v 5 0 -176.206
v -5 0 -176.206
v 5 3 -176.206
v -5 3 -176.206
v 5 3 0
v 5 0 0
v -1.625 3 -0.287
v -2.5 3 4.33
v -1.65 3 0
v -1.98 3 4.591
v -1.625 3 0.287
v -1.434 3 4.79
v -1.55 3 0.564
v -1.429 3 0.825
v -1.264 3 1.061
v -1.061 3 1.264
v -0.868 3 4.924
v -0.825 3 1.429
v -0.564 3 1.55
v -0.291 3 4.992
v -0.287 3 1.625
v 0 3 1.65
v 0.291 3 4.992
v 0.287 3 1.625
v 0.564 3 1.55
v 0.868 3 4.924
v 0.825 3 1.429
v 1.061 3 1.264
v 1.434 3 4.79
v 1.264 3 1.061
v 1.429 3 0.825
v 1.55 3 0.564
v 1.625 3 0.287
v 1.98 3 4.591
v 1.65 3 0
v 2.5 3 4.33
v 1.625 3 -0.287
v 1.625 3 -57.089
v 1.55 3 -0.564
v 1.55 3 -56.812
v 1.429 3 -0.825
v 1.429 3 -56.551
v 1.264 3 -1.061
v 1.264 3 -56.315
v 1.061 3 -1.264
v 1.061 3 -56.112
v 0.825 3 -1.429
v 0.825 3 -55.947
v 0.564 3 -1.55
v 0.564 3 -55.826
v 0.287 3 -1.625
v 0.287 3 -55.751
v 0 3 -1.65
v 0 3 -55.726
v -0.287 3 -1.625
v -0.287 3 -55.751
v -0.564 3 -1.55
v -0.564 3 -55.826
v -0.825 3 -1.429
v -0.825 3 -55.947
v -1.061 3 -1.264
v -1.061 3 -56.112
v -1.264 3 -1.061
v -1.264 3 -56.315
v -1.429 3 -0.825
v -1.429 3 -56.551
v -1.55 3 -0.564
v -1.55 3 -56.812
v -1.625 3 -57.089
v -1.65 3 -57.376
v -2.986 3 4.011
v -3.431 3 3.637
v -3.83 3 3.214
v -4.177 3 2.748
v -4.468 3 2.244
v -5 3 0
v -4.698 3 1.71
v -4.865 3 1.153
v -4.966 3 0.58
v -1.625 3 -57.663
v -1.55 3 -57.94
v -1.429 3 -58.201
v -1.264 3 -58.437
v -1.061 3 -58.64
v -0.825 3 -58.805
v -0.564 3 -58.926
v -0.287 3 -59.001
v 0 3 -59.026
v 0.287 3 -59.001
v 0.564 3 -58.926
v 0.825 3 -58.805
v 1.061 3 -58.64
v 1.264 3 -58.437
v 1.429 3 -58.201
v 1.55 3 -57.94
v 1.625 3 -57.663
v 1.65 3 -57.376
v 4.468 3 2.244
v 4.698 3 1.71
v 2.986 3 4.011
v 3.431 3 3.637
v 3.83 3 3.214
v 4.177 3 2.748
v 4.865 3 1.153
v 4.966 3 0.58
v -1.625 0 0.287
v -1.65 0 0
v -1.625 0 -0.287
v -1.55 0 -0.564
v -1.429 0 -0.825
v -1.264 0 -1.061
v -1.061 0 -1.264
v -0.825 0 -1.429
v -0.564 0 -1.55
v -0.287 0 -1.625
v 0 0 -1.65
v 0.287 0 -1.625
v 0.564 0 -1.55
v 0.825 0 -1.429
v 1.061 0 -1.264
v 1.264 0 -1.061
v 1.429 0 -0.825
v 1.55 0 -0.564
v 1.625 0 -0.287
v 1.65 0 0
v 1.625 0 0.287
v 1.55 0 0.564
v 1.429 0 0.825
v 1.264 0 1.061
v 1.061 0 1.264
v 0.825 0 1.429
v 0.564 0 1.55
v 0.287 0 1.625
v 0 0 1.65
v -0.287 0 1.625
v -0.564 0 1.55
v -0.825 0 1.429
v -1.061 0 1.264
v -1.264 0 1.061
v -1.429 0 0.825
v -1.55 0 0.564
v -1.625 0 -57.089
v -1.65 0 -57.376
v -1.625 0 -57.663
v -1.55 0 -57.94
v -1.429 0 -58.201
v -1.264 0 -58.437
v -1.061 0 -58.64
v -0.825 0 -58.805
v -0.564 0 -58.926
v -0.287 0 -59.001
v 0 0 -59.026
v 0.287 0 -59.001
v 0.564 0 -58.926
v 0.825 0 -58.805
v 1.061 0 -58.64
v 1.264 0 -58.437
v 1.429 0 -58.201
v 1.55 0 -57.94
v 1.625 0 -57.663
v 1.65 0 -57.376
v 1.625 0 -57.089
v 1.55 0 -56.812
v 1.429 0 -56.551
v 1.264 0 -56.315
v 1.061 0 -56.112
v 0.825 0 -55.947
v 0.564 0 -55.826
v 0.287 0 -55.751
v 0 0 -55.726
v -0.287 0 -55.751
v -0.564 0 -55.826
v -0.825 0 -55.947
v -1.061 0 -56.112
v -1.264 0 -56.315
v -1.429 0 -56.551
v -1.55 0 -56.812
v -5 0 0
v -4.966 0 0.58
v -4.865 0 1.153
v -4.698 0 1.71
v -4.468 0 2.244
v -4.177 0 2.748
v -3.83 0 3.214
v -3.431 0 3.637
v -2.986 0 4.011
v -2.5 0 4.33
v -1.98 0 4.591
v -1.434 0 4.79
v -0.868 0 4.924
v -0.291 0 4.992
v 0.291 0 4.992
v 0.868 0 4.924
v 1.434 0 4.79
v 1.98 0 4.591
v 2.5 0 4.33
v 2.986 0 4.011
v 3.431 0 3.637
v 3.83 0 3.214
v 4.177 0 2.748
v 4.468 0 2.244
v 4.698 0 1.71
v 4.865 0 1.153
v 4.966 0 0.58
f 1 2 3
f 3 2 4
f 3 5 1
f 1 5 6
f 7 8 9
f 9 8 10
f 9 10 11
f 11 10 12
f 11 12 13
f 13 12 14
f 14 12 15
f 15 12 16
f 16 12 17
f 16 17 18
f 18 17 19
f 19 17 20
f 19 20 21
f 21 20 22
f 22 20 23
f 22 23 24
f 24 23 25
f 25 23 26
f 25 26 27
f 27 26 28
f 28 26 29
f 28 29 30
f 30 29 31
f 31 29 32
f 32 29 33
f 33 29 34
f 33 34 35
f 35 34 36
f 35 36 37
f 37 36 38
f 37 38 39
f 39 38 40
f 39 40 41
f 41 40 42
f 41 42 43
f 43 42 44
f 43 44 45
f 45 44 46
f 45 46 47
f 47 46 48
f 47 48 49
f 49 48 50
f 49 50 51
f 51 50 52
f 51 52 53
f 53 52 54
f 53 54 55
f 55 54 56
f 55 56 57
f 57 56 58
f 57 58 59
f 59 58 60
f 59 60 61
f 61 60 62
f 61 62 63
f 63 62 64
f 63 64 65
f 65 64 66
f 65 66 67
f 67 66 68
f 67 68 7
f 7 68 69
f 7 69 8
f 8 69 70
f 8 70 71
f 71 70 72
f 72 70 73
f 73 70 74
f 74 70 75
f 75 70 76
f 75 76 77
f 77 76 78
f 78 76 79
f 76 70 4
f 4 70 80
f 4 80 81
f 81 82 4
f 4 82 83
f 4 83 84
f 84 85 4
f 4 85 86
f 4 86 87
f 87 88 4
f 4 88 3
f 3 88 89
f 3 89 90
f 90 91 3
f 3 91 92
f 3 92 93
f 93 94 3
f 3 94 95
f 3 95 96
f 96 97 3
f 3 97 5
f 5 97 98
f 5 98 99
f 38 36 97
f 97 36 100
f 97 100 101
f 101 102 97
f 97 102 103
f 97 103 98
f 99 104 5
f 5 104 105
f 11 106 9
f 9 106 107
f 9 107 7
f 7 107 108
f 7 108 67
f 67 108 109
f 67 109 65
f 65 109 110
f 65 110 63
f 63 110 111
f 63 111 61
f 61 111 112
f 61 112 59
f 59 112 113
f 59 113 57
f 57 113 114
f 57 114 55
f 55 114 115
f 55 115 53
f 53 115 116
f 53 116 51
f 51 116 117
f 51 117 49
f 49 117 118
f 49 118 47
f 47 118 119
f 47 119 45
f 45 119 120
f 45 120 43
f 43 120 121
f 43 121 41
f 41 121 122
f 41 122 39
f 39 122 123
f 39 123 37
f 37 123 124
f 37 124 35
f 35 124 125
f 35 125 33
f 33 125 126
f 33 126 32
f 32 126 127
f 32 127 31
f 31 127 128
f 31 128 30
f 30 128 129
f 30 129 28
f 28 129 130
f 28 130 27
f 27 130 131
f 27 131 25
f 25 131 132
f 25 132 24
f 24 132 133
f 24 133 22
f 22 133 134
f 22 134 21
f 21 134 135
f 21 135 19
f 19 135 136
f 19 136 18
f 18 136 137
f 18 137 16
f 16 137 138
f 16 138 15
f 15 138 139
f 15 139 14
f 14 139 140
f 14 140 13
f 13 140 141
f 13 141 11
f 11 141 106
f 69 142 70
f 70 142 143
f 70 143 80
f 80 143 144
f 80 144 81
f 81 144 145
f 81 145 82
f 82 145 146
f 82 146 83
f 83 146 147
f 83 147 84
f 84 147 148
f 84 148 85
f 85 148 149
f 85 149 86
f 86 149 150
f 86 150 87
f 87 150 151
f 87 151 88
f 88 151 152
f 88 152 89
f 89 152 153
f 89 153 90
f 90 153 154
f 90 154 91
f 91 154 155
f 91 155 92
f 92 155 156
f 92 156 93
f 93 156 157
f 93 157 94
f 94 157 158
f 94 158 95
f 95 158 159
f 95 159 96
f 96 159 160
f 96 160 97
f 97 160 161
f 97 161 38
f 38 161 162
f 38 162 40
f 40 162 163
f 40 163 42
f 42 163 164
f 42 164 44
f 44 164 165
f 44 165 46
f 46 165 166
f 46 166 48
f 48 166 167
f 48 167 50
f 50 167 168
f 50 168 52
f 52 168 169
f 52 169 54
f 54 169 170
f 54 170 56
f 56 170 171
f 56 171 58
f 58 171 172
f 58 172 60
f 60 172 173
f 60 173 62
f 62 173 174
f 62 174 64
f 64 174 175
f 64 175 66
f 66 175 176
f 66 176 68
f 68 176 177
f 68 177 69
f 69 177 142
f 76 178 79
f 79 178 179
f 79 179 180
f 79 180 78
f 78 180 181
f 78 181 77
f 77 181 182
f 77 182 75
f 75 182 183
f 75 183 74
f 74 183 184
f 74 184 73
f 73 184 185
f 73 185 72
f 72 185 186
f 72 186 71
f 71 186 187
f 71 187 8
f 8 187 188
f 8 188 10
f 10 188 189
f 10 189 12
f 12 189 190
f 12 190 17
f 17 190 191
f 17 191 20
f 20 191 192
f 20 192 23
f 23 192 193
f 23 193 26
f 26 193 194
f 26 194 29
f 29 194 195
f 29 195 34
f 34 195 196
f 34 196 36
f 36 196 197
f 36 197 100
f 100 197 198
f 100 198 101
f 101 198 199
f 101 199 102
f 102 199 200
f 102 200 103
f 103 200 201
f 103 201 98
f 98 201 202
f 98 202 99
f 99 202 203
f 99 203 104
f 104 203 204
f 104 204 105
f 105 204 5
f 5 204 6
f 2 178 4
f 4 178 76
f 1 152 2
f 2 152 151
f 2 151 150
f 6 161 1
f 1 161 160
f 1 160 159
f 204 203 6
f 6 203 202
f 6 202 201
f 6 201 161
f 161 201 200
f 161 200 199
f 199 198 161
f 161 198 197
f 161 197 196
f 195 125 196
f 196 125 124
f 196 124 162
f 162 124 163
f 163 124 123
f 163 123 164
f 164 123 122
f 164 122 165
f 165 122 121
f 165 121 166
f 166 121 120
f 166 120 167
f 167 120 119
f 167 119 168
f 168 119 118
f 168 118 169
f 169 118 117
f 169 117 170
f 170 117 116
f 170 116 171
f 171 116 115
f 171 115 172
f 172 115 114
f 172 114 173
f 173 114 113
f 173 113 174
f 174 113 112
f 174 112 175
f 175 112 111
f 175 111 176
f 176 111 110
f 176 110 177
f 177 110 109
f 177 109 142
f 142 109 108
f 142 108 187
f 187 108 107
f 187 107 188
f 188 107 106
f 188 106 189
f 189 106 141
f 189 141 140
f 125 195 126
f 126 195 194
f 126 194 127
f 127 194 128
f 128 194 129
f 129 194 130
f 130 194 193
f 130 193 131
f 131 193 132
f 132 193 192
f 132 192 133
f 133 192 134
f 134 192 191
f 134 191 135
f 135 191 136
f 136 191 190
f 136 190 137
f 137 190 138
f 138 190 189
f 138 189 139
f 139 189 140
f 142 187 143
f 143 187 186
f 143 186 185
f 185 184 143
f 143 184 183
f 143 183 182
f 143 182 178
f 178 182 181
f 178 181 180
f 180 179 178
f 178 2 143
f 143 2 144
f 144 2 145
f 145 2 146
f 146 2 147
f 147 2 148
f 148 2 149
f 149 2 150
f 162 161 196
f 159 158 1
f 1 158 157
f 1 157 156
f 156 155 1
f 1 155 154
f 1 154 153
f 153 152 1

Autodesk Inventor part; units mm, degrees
ref_plane "YZ Plane" through (0, 0, 0) normal (1, 0, 0) x (0, 1, 0)
ref_plane "XZ Plane" through (0, 0, 0) normal (0, 1, 0) x (-1, 0, 0)
ref_plane "XY Plane" through (0, 0, 0) normal (0, 0, 1) x (1, 0, 0)
sketch "Sketch1" plane through (0, 0, 0) normal (0, 1, 0) x (-1, 0, 0)
  line L0 (0, 0) -> (0, -355.998) construction
  line L1 (5, 0) -> (5, -355.998)
  line L2 (-5, -355.998) -> (-5, 0)
  arc A0 (5, 0) -> (-5, 0) centre (0, 0) ccw
  arc A1 (-5, -355.998) -> (5, -355.998) centre (0, -355.998) ccw
  circle A2 centre (0, 0) radius 1.65
  circle A3 centre (0, -355.998) radius 1.65
  circle A4 centre (0, -57.376) radius 1.65
  point P0 (0, -177.999)
  dimension "d0" = 3.3
  dimension "d1" = 3.3
  dimension "d2" = 10
  dimension "d3" = 355.998
  dimension "d14" = 3.3
  dimension "d15" = 57.376
extrude "Extrusion1" add sketch "Sketch1" along normal blind 3
sketch "Sketch2" plane through (0, 3, 0) normal (0, 1, 0) x (1, 0, 0)
  line L0 (-26.2185, 378.6248) -> (37.2853, 378.6248)
  line L1 (37.2853, 378.6248) -> (37.2853, 176.2061)
  line L2 (37.2853, 176.2061) -> (-26.2185, 176.2061)
  line L3 (-26.2185, 176.2061) -> (-26.2185, 378.6248)
  line L4 (-95.1798, 405.4155) -> (74.9908, 405.4155)
  line L5 (74.9908, 405.4155) -> (74.9908, -44.073)
  line L6 (74.9908, -44.073) -> (-95.1798, -44.073)
  line L7 (-95.1798, -44.073) -> (-95.1798, 405.4155)
  point P0 (0, 0)
extrude "Extrusion2" cut sketch "Sketch2" against normal blind 10 contours L0 L1 L2 L3
properties part number "Part_10_p1"
